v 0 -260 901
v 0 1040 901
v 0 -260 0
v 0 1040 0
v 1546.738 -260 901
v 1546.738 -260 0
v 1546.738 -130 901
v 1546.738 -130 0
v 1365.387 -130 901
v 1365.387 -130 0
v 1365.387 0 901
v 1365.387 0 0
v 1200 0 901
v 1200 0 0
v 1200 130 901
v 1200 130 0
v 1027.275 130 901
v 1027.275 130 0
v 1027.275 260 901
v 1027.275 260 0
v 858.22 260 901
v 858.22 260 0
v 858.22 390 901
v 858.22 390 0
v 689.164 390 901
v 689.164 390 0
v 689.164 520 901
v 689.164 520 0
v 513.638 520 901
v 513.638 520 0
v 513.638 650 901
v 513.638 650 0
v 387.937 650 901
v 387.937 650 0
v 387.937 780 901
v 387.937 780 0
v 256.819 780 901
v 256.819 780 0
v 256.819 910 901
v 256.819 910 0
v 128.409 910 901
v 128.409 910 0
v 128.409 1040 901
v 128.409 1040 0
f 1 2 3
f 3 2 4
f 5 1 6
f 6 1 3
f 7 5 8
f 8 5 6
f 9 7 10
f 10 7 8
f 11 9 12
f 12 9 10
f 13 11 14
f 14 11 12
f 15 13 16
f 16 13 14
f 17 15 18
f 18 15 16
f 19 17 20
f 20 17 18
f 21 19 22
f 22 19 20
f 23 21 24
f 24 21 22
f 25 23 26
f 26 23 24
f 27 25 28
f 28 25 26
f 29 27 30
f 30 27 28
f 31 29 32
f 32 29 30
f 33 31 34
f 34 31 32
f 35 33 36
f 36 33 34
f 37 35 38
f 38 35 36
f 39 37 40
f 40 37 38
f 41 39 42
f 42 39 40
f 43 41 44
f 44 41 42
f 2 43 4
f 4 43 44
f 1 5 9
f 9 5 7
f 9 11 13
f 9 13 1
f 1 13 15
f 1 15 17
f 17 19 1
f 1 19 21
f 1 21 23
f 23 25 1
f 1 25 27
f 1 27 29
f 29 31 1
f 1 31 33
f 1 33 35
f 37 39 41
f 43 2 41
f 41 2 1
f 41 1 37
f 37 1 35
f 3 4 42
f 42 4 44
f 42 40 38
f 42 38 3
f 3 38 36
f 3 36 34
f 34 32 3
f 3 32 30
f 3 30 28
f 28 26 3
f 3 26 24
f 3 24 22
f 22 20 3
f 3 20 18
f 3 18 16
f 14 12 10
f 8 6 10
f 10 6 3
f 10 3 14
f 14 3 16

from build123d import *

# Parameters (mm, degrees)
CROQUIS1_W              = 128.409435803
CROQUIS1_H              = 130
CROQUIS1_W_2            = 1200
SALIENTE_EXTRUIR1_DEPTH = 901


with BuildPart() as part:
    # Croquis1 → Saliente-Extruir1 (new body)
    with BuildSketch(Plane.XY):
        with Locations((64.204717902, 975)):
            Rectangle(CROQUIS1_W, CROQUIS1_H)
        Polygon((0, 910), (0, 780), (256.818871606, 780), (256.818871606, 910), (128.409435803, 910), align=None)
        Polygon((0, 780), (0, 650), (387.93663619, 650), (387.93663619, 780), (256.818871606, 780), align=None)
        Polygon((0, 650), (0, 520), (513.637743212, 520), (513.637743212, 650), (387.93663619, 650), align=None)
        Polygon((0, 520), (0, 390), (689.163594473, 390), (689.163594473, 520), (513.637743212, 520), align=None)
        Polygon((0, 390), (0, 260), (858.219540448, 260), (858.219540448, 390), (689.163594473, 390), align=None)
        Polygon((0, 260), (0, 130), (1027.275486423, 130), (1027.275486423, 260), (858.219540448, 260), align=None)
        with Locations((600, 65)):
            Rectangle(CROQUIS1_W_2, CROQUIS1_H)
        Polygon((1200, 0), (0, 0), (0, -130), (1365.387378374, -130), (1365.387378374, 0), align=None)
        Polygon((1365.387378374, -130), (0, -130), (0, -260), (1546.738302238, -260), (1546.738302238, -130), align=None)
    extrude(amount=SALIENTE_EXTRUIR1_DEPTH)


solid = part.part
